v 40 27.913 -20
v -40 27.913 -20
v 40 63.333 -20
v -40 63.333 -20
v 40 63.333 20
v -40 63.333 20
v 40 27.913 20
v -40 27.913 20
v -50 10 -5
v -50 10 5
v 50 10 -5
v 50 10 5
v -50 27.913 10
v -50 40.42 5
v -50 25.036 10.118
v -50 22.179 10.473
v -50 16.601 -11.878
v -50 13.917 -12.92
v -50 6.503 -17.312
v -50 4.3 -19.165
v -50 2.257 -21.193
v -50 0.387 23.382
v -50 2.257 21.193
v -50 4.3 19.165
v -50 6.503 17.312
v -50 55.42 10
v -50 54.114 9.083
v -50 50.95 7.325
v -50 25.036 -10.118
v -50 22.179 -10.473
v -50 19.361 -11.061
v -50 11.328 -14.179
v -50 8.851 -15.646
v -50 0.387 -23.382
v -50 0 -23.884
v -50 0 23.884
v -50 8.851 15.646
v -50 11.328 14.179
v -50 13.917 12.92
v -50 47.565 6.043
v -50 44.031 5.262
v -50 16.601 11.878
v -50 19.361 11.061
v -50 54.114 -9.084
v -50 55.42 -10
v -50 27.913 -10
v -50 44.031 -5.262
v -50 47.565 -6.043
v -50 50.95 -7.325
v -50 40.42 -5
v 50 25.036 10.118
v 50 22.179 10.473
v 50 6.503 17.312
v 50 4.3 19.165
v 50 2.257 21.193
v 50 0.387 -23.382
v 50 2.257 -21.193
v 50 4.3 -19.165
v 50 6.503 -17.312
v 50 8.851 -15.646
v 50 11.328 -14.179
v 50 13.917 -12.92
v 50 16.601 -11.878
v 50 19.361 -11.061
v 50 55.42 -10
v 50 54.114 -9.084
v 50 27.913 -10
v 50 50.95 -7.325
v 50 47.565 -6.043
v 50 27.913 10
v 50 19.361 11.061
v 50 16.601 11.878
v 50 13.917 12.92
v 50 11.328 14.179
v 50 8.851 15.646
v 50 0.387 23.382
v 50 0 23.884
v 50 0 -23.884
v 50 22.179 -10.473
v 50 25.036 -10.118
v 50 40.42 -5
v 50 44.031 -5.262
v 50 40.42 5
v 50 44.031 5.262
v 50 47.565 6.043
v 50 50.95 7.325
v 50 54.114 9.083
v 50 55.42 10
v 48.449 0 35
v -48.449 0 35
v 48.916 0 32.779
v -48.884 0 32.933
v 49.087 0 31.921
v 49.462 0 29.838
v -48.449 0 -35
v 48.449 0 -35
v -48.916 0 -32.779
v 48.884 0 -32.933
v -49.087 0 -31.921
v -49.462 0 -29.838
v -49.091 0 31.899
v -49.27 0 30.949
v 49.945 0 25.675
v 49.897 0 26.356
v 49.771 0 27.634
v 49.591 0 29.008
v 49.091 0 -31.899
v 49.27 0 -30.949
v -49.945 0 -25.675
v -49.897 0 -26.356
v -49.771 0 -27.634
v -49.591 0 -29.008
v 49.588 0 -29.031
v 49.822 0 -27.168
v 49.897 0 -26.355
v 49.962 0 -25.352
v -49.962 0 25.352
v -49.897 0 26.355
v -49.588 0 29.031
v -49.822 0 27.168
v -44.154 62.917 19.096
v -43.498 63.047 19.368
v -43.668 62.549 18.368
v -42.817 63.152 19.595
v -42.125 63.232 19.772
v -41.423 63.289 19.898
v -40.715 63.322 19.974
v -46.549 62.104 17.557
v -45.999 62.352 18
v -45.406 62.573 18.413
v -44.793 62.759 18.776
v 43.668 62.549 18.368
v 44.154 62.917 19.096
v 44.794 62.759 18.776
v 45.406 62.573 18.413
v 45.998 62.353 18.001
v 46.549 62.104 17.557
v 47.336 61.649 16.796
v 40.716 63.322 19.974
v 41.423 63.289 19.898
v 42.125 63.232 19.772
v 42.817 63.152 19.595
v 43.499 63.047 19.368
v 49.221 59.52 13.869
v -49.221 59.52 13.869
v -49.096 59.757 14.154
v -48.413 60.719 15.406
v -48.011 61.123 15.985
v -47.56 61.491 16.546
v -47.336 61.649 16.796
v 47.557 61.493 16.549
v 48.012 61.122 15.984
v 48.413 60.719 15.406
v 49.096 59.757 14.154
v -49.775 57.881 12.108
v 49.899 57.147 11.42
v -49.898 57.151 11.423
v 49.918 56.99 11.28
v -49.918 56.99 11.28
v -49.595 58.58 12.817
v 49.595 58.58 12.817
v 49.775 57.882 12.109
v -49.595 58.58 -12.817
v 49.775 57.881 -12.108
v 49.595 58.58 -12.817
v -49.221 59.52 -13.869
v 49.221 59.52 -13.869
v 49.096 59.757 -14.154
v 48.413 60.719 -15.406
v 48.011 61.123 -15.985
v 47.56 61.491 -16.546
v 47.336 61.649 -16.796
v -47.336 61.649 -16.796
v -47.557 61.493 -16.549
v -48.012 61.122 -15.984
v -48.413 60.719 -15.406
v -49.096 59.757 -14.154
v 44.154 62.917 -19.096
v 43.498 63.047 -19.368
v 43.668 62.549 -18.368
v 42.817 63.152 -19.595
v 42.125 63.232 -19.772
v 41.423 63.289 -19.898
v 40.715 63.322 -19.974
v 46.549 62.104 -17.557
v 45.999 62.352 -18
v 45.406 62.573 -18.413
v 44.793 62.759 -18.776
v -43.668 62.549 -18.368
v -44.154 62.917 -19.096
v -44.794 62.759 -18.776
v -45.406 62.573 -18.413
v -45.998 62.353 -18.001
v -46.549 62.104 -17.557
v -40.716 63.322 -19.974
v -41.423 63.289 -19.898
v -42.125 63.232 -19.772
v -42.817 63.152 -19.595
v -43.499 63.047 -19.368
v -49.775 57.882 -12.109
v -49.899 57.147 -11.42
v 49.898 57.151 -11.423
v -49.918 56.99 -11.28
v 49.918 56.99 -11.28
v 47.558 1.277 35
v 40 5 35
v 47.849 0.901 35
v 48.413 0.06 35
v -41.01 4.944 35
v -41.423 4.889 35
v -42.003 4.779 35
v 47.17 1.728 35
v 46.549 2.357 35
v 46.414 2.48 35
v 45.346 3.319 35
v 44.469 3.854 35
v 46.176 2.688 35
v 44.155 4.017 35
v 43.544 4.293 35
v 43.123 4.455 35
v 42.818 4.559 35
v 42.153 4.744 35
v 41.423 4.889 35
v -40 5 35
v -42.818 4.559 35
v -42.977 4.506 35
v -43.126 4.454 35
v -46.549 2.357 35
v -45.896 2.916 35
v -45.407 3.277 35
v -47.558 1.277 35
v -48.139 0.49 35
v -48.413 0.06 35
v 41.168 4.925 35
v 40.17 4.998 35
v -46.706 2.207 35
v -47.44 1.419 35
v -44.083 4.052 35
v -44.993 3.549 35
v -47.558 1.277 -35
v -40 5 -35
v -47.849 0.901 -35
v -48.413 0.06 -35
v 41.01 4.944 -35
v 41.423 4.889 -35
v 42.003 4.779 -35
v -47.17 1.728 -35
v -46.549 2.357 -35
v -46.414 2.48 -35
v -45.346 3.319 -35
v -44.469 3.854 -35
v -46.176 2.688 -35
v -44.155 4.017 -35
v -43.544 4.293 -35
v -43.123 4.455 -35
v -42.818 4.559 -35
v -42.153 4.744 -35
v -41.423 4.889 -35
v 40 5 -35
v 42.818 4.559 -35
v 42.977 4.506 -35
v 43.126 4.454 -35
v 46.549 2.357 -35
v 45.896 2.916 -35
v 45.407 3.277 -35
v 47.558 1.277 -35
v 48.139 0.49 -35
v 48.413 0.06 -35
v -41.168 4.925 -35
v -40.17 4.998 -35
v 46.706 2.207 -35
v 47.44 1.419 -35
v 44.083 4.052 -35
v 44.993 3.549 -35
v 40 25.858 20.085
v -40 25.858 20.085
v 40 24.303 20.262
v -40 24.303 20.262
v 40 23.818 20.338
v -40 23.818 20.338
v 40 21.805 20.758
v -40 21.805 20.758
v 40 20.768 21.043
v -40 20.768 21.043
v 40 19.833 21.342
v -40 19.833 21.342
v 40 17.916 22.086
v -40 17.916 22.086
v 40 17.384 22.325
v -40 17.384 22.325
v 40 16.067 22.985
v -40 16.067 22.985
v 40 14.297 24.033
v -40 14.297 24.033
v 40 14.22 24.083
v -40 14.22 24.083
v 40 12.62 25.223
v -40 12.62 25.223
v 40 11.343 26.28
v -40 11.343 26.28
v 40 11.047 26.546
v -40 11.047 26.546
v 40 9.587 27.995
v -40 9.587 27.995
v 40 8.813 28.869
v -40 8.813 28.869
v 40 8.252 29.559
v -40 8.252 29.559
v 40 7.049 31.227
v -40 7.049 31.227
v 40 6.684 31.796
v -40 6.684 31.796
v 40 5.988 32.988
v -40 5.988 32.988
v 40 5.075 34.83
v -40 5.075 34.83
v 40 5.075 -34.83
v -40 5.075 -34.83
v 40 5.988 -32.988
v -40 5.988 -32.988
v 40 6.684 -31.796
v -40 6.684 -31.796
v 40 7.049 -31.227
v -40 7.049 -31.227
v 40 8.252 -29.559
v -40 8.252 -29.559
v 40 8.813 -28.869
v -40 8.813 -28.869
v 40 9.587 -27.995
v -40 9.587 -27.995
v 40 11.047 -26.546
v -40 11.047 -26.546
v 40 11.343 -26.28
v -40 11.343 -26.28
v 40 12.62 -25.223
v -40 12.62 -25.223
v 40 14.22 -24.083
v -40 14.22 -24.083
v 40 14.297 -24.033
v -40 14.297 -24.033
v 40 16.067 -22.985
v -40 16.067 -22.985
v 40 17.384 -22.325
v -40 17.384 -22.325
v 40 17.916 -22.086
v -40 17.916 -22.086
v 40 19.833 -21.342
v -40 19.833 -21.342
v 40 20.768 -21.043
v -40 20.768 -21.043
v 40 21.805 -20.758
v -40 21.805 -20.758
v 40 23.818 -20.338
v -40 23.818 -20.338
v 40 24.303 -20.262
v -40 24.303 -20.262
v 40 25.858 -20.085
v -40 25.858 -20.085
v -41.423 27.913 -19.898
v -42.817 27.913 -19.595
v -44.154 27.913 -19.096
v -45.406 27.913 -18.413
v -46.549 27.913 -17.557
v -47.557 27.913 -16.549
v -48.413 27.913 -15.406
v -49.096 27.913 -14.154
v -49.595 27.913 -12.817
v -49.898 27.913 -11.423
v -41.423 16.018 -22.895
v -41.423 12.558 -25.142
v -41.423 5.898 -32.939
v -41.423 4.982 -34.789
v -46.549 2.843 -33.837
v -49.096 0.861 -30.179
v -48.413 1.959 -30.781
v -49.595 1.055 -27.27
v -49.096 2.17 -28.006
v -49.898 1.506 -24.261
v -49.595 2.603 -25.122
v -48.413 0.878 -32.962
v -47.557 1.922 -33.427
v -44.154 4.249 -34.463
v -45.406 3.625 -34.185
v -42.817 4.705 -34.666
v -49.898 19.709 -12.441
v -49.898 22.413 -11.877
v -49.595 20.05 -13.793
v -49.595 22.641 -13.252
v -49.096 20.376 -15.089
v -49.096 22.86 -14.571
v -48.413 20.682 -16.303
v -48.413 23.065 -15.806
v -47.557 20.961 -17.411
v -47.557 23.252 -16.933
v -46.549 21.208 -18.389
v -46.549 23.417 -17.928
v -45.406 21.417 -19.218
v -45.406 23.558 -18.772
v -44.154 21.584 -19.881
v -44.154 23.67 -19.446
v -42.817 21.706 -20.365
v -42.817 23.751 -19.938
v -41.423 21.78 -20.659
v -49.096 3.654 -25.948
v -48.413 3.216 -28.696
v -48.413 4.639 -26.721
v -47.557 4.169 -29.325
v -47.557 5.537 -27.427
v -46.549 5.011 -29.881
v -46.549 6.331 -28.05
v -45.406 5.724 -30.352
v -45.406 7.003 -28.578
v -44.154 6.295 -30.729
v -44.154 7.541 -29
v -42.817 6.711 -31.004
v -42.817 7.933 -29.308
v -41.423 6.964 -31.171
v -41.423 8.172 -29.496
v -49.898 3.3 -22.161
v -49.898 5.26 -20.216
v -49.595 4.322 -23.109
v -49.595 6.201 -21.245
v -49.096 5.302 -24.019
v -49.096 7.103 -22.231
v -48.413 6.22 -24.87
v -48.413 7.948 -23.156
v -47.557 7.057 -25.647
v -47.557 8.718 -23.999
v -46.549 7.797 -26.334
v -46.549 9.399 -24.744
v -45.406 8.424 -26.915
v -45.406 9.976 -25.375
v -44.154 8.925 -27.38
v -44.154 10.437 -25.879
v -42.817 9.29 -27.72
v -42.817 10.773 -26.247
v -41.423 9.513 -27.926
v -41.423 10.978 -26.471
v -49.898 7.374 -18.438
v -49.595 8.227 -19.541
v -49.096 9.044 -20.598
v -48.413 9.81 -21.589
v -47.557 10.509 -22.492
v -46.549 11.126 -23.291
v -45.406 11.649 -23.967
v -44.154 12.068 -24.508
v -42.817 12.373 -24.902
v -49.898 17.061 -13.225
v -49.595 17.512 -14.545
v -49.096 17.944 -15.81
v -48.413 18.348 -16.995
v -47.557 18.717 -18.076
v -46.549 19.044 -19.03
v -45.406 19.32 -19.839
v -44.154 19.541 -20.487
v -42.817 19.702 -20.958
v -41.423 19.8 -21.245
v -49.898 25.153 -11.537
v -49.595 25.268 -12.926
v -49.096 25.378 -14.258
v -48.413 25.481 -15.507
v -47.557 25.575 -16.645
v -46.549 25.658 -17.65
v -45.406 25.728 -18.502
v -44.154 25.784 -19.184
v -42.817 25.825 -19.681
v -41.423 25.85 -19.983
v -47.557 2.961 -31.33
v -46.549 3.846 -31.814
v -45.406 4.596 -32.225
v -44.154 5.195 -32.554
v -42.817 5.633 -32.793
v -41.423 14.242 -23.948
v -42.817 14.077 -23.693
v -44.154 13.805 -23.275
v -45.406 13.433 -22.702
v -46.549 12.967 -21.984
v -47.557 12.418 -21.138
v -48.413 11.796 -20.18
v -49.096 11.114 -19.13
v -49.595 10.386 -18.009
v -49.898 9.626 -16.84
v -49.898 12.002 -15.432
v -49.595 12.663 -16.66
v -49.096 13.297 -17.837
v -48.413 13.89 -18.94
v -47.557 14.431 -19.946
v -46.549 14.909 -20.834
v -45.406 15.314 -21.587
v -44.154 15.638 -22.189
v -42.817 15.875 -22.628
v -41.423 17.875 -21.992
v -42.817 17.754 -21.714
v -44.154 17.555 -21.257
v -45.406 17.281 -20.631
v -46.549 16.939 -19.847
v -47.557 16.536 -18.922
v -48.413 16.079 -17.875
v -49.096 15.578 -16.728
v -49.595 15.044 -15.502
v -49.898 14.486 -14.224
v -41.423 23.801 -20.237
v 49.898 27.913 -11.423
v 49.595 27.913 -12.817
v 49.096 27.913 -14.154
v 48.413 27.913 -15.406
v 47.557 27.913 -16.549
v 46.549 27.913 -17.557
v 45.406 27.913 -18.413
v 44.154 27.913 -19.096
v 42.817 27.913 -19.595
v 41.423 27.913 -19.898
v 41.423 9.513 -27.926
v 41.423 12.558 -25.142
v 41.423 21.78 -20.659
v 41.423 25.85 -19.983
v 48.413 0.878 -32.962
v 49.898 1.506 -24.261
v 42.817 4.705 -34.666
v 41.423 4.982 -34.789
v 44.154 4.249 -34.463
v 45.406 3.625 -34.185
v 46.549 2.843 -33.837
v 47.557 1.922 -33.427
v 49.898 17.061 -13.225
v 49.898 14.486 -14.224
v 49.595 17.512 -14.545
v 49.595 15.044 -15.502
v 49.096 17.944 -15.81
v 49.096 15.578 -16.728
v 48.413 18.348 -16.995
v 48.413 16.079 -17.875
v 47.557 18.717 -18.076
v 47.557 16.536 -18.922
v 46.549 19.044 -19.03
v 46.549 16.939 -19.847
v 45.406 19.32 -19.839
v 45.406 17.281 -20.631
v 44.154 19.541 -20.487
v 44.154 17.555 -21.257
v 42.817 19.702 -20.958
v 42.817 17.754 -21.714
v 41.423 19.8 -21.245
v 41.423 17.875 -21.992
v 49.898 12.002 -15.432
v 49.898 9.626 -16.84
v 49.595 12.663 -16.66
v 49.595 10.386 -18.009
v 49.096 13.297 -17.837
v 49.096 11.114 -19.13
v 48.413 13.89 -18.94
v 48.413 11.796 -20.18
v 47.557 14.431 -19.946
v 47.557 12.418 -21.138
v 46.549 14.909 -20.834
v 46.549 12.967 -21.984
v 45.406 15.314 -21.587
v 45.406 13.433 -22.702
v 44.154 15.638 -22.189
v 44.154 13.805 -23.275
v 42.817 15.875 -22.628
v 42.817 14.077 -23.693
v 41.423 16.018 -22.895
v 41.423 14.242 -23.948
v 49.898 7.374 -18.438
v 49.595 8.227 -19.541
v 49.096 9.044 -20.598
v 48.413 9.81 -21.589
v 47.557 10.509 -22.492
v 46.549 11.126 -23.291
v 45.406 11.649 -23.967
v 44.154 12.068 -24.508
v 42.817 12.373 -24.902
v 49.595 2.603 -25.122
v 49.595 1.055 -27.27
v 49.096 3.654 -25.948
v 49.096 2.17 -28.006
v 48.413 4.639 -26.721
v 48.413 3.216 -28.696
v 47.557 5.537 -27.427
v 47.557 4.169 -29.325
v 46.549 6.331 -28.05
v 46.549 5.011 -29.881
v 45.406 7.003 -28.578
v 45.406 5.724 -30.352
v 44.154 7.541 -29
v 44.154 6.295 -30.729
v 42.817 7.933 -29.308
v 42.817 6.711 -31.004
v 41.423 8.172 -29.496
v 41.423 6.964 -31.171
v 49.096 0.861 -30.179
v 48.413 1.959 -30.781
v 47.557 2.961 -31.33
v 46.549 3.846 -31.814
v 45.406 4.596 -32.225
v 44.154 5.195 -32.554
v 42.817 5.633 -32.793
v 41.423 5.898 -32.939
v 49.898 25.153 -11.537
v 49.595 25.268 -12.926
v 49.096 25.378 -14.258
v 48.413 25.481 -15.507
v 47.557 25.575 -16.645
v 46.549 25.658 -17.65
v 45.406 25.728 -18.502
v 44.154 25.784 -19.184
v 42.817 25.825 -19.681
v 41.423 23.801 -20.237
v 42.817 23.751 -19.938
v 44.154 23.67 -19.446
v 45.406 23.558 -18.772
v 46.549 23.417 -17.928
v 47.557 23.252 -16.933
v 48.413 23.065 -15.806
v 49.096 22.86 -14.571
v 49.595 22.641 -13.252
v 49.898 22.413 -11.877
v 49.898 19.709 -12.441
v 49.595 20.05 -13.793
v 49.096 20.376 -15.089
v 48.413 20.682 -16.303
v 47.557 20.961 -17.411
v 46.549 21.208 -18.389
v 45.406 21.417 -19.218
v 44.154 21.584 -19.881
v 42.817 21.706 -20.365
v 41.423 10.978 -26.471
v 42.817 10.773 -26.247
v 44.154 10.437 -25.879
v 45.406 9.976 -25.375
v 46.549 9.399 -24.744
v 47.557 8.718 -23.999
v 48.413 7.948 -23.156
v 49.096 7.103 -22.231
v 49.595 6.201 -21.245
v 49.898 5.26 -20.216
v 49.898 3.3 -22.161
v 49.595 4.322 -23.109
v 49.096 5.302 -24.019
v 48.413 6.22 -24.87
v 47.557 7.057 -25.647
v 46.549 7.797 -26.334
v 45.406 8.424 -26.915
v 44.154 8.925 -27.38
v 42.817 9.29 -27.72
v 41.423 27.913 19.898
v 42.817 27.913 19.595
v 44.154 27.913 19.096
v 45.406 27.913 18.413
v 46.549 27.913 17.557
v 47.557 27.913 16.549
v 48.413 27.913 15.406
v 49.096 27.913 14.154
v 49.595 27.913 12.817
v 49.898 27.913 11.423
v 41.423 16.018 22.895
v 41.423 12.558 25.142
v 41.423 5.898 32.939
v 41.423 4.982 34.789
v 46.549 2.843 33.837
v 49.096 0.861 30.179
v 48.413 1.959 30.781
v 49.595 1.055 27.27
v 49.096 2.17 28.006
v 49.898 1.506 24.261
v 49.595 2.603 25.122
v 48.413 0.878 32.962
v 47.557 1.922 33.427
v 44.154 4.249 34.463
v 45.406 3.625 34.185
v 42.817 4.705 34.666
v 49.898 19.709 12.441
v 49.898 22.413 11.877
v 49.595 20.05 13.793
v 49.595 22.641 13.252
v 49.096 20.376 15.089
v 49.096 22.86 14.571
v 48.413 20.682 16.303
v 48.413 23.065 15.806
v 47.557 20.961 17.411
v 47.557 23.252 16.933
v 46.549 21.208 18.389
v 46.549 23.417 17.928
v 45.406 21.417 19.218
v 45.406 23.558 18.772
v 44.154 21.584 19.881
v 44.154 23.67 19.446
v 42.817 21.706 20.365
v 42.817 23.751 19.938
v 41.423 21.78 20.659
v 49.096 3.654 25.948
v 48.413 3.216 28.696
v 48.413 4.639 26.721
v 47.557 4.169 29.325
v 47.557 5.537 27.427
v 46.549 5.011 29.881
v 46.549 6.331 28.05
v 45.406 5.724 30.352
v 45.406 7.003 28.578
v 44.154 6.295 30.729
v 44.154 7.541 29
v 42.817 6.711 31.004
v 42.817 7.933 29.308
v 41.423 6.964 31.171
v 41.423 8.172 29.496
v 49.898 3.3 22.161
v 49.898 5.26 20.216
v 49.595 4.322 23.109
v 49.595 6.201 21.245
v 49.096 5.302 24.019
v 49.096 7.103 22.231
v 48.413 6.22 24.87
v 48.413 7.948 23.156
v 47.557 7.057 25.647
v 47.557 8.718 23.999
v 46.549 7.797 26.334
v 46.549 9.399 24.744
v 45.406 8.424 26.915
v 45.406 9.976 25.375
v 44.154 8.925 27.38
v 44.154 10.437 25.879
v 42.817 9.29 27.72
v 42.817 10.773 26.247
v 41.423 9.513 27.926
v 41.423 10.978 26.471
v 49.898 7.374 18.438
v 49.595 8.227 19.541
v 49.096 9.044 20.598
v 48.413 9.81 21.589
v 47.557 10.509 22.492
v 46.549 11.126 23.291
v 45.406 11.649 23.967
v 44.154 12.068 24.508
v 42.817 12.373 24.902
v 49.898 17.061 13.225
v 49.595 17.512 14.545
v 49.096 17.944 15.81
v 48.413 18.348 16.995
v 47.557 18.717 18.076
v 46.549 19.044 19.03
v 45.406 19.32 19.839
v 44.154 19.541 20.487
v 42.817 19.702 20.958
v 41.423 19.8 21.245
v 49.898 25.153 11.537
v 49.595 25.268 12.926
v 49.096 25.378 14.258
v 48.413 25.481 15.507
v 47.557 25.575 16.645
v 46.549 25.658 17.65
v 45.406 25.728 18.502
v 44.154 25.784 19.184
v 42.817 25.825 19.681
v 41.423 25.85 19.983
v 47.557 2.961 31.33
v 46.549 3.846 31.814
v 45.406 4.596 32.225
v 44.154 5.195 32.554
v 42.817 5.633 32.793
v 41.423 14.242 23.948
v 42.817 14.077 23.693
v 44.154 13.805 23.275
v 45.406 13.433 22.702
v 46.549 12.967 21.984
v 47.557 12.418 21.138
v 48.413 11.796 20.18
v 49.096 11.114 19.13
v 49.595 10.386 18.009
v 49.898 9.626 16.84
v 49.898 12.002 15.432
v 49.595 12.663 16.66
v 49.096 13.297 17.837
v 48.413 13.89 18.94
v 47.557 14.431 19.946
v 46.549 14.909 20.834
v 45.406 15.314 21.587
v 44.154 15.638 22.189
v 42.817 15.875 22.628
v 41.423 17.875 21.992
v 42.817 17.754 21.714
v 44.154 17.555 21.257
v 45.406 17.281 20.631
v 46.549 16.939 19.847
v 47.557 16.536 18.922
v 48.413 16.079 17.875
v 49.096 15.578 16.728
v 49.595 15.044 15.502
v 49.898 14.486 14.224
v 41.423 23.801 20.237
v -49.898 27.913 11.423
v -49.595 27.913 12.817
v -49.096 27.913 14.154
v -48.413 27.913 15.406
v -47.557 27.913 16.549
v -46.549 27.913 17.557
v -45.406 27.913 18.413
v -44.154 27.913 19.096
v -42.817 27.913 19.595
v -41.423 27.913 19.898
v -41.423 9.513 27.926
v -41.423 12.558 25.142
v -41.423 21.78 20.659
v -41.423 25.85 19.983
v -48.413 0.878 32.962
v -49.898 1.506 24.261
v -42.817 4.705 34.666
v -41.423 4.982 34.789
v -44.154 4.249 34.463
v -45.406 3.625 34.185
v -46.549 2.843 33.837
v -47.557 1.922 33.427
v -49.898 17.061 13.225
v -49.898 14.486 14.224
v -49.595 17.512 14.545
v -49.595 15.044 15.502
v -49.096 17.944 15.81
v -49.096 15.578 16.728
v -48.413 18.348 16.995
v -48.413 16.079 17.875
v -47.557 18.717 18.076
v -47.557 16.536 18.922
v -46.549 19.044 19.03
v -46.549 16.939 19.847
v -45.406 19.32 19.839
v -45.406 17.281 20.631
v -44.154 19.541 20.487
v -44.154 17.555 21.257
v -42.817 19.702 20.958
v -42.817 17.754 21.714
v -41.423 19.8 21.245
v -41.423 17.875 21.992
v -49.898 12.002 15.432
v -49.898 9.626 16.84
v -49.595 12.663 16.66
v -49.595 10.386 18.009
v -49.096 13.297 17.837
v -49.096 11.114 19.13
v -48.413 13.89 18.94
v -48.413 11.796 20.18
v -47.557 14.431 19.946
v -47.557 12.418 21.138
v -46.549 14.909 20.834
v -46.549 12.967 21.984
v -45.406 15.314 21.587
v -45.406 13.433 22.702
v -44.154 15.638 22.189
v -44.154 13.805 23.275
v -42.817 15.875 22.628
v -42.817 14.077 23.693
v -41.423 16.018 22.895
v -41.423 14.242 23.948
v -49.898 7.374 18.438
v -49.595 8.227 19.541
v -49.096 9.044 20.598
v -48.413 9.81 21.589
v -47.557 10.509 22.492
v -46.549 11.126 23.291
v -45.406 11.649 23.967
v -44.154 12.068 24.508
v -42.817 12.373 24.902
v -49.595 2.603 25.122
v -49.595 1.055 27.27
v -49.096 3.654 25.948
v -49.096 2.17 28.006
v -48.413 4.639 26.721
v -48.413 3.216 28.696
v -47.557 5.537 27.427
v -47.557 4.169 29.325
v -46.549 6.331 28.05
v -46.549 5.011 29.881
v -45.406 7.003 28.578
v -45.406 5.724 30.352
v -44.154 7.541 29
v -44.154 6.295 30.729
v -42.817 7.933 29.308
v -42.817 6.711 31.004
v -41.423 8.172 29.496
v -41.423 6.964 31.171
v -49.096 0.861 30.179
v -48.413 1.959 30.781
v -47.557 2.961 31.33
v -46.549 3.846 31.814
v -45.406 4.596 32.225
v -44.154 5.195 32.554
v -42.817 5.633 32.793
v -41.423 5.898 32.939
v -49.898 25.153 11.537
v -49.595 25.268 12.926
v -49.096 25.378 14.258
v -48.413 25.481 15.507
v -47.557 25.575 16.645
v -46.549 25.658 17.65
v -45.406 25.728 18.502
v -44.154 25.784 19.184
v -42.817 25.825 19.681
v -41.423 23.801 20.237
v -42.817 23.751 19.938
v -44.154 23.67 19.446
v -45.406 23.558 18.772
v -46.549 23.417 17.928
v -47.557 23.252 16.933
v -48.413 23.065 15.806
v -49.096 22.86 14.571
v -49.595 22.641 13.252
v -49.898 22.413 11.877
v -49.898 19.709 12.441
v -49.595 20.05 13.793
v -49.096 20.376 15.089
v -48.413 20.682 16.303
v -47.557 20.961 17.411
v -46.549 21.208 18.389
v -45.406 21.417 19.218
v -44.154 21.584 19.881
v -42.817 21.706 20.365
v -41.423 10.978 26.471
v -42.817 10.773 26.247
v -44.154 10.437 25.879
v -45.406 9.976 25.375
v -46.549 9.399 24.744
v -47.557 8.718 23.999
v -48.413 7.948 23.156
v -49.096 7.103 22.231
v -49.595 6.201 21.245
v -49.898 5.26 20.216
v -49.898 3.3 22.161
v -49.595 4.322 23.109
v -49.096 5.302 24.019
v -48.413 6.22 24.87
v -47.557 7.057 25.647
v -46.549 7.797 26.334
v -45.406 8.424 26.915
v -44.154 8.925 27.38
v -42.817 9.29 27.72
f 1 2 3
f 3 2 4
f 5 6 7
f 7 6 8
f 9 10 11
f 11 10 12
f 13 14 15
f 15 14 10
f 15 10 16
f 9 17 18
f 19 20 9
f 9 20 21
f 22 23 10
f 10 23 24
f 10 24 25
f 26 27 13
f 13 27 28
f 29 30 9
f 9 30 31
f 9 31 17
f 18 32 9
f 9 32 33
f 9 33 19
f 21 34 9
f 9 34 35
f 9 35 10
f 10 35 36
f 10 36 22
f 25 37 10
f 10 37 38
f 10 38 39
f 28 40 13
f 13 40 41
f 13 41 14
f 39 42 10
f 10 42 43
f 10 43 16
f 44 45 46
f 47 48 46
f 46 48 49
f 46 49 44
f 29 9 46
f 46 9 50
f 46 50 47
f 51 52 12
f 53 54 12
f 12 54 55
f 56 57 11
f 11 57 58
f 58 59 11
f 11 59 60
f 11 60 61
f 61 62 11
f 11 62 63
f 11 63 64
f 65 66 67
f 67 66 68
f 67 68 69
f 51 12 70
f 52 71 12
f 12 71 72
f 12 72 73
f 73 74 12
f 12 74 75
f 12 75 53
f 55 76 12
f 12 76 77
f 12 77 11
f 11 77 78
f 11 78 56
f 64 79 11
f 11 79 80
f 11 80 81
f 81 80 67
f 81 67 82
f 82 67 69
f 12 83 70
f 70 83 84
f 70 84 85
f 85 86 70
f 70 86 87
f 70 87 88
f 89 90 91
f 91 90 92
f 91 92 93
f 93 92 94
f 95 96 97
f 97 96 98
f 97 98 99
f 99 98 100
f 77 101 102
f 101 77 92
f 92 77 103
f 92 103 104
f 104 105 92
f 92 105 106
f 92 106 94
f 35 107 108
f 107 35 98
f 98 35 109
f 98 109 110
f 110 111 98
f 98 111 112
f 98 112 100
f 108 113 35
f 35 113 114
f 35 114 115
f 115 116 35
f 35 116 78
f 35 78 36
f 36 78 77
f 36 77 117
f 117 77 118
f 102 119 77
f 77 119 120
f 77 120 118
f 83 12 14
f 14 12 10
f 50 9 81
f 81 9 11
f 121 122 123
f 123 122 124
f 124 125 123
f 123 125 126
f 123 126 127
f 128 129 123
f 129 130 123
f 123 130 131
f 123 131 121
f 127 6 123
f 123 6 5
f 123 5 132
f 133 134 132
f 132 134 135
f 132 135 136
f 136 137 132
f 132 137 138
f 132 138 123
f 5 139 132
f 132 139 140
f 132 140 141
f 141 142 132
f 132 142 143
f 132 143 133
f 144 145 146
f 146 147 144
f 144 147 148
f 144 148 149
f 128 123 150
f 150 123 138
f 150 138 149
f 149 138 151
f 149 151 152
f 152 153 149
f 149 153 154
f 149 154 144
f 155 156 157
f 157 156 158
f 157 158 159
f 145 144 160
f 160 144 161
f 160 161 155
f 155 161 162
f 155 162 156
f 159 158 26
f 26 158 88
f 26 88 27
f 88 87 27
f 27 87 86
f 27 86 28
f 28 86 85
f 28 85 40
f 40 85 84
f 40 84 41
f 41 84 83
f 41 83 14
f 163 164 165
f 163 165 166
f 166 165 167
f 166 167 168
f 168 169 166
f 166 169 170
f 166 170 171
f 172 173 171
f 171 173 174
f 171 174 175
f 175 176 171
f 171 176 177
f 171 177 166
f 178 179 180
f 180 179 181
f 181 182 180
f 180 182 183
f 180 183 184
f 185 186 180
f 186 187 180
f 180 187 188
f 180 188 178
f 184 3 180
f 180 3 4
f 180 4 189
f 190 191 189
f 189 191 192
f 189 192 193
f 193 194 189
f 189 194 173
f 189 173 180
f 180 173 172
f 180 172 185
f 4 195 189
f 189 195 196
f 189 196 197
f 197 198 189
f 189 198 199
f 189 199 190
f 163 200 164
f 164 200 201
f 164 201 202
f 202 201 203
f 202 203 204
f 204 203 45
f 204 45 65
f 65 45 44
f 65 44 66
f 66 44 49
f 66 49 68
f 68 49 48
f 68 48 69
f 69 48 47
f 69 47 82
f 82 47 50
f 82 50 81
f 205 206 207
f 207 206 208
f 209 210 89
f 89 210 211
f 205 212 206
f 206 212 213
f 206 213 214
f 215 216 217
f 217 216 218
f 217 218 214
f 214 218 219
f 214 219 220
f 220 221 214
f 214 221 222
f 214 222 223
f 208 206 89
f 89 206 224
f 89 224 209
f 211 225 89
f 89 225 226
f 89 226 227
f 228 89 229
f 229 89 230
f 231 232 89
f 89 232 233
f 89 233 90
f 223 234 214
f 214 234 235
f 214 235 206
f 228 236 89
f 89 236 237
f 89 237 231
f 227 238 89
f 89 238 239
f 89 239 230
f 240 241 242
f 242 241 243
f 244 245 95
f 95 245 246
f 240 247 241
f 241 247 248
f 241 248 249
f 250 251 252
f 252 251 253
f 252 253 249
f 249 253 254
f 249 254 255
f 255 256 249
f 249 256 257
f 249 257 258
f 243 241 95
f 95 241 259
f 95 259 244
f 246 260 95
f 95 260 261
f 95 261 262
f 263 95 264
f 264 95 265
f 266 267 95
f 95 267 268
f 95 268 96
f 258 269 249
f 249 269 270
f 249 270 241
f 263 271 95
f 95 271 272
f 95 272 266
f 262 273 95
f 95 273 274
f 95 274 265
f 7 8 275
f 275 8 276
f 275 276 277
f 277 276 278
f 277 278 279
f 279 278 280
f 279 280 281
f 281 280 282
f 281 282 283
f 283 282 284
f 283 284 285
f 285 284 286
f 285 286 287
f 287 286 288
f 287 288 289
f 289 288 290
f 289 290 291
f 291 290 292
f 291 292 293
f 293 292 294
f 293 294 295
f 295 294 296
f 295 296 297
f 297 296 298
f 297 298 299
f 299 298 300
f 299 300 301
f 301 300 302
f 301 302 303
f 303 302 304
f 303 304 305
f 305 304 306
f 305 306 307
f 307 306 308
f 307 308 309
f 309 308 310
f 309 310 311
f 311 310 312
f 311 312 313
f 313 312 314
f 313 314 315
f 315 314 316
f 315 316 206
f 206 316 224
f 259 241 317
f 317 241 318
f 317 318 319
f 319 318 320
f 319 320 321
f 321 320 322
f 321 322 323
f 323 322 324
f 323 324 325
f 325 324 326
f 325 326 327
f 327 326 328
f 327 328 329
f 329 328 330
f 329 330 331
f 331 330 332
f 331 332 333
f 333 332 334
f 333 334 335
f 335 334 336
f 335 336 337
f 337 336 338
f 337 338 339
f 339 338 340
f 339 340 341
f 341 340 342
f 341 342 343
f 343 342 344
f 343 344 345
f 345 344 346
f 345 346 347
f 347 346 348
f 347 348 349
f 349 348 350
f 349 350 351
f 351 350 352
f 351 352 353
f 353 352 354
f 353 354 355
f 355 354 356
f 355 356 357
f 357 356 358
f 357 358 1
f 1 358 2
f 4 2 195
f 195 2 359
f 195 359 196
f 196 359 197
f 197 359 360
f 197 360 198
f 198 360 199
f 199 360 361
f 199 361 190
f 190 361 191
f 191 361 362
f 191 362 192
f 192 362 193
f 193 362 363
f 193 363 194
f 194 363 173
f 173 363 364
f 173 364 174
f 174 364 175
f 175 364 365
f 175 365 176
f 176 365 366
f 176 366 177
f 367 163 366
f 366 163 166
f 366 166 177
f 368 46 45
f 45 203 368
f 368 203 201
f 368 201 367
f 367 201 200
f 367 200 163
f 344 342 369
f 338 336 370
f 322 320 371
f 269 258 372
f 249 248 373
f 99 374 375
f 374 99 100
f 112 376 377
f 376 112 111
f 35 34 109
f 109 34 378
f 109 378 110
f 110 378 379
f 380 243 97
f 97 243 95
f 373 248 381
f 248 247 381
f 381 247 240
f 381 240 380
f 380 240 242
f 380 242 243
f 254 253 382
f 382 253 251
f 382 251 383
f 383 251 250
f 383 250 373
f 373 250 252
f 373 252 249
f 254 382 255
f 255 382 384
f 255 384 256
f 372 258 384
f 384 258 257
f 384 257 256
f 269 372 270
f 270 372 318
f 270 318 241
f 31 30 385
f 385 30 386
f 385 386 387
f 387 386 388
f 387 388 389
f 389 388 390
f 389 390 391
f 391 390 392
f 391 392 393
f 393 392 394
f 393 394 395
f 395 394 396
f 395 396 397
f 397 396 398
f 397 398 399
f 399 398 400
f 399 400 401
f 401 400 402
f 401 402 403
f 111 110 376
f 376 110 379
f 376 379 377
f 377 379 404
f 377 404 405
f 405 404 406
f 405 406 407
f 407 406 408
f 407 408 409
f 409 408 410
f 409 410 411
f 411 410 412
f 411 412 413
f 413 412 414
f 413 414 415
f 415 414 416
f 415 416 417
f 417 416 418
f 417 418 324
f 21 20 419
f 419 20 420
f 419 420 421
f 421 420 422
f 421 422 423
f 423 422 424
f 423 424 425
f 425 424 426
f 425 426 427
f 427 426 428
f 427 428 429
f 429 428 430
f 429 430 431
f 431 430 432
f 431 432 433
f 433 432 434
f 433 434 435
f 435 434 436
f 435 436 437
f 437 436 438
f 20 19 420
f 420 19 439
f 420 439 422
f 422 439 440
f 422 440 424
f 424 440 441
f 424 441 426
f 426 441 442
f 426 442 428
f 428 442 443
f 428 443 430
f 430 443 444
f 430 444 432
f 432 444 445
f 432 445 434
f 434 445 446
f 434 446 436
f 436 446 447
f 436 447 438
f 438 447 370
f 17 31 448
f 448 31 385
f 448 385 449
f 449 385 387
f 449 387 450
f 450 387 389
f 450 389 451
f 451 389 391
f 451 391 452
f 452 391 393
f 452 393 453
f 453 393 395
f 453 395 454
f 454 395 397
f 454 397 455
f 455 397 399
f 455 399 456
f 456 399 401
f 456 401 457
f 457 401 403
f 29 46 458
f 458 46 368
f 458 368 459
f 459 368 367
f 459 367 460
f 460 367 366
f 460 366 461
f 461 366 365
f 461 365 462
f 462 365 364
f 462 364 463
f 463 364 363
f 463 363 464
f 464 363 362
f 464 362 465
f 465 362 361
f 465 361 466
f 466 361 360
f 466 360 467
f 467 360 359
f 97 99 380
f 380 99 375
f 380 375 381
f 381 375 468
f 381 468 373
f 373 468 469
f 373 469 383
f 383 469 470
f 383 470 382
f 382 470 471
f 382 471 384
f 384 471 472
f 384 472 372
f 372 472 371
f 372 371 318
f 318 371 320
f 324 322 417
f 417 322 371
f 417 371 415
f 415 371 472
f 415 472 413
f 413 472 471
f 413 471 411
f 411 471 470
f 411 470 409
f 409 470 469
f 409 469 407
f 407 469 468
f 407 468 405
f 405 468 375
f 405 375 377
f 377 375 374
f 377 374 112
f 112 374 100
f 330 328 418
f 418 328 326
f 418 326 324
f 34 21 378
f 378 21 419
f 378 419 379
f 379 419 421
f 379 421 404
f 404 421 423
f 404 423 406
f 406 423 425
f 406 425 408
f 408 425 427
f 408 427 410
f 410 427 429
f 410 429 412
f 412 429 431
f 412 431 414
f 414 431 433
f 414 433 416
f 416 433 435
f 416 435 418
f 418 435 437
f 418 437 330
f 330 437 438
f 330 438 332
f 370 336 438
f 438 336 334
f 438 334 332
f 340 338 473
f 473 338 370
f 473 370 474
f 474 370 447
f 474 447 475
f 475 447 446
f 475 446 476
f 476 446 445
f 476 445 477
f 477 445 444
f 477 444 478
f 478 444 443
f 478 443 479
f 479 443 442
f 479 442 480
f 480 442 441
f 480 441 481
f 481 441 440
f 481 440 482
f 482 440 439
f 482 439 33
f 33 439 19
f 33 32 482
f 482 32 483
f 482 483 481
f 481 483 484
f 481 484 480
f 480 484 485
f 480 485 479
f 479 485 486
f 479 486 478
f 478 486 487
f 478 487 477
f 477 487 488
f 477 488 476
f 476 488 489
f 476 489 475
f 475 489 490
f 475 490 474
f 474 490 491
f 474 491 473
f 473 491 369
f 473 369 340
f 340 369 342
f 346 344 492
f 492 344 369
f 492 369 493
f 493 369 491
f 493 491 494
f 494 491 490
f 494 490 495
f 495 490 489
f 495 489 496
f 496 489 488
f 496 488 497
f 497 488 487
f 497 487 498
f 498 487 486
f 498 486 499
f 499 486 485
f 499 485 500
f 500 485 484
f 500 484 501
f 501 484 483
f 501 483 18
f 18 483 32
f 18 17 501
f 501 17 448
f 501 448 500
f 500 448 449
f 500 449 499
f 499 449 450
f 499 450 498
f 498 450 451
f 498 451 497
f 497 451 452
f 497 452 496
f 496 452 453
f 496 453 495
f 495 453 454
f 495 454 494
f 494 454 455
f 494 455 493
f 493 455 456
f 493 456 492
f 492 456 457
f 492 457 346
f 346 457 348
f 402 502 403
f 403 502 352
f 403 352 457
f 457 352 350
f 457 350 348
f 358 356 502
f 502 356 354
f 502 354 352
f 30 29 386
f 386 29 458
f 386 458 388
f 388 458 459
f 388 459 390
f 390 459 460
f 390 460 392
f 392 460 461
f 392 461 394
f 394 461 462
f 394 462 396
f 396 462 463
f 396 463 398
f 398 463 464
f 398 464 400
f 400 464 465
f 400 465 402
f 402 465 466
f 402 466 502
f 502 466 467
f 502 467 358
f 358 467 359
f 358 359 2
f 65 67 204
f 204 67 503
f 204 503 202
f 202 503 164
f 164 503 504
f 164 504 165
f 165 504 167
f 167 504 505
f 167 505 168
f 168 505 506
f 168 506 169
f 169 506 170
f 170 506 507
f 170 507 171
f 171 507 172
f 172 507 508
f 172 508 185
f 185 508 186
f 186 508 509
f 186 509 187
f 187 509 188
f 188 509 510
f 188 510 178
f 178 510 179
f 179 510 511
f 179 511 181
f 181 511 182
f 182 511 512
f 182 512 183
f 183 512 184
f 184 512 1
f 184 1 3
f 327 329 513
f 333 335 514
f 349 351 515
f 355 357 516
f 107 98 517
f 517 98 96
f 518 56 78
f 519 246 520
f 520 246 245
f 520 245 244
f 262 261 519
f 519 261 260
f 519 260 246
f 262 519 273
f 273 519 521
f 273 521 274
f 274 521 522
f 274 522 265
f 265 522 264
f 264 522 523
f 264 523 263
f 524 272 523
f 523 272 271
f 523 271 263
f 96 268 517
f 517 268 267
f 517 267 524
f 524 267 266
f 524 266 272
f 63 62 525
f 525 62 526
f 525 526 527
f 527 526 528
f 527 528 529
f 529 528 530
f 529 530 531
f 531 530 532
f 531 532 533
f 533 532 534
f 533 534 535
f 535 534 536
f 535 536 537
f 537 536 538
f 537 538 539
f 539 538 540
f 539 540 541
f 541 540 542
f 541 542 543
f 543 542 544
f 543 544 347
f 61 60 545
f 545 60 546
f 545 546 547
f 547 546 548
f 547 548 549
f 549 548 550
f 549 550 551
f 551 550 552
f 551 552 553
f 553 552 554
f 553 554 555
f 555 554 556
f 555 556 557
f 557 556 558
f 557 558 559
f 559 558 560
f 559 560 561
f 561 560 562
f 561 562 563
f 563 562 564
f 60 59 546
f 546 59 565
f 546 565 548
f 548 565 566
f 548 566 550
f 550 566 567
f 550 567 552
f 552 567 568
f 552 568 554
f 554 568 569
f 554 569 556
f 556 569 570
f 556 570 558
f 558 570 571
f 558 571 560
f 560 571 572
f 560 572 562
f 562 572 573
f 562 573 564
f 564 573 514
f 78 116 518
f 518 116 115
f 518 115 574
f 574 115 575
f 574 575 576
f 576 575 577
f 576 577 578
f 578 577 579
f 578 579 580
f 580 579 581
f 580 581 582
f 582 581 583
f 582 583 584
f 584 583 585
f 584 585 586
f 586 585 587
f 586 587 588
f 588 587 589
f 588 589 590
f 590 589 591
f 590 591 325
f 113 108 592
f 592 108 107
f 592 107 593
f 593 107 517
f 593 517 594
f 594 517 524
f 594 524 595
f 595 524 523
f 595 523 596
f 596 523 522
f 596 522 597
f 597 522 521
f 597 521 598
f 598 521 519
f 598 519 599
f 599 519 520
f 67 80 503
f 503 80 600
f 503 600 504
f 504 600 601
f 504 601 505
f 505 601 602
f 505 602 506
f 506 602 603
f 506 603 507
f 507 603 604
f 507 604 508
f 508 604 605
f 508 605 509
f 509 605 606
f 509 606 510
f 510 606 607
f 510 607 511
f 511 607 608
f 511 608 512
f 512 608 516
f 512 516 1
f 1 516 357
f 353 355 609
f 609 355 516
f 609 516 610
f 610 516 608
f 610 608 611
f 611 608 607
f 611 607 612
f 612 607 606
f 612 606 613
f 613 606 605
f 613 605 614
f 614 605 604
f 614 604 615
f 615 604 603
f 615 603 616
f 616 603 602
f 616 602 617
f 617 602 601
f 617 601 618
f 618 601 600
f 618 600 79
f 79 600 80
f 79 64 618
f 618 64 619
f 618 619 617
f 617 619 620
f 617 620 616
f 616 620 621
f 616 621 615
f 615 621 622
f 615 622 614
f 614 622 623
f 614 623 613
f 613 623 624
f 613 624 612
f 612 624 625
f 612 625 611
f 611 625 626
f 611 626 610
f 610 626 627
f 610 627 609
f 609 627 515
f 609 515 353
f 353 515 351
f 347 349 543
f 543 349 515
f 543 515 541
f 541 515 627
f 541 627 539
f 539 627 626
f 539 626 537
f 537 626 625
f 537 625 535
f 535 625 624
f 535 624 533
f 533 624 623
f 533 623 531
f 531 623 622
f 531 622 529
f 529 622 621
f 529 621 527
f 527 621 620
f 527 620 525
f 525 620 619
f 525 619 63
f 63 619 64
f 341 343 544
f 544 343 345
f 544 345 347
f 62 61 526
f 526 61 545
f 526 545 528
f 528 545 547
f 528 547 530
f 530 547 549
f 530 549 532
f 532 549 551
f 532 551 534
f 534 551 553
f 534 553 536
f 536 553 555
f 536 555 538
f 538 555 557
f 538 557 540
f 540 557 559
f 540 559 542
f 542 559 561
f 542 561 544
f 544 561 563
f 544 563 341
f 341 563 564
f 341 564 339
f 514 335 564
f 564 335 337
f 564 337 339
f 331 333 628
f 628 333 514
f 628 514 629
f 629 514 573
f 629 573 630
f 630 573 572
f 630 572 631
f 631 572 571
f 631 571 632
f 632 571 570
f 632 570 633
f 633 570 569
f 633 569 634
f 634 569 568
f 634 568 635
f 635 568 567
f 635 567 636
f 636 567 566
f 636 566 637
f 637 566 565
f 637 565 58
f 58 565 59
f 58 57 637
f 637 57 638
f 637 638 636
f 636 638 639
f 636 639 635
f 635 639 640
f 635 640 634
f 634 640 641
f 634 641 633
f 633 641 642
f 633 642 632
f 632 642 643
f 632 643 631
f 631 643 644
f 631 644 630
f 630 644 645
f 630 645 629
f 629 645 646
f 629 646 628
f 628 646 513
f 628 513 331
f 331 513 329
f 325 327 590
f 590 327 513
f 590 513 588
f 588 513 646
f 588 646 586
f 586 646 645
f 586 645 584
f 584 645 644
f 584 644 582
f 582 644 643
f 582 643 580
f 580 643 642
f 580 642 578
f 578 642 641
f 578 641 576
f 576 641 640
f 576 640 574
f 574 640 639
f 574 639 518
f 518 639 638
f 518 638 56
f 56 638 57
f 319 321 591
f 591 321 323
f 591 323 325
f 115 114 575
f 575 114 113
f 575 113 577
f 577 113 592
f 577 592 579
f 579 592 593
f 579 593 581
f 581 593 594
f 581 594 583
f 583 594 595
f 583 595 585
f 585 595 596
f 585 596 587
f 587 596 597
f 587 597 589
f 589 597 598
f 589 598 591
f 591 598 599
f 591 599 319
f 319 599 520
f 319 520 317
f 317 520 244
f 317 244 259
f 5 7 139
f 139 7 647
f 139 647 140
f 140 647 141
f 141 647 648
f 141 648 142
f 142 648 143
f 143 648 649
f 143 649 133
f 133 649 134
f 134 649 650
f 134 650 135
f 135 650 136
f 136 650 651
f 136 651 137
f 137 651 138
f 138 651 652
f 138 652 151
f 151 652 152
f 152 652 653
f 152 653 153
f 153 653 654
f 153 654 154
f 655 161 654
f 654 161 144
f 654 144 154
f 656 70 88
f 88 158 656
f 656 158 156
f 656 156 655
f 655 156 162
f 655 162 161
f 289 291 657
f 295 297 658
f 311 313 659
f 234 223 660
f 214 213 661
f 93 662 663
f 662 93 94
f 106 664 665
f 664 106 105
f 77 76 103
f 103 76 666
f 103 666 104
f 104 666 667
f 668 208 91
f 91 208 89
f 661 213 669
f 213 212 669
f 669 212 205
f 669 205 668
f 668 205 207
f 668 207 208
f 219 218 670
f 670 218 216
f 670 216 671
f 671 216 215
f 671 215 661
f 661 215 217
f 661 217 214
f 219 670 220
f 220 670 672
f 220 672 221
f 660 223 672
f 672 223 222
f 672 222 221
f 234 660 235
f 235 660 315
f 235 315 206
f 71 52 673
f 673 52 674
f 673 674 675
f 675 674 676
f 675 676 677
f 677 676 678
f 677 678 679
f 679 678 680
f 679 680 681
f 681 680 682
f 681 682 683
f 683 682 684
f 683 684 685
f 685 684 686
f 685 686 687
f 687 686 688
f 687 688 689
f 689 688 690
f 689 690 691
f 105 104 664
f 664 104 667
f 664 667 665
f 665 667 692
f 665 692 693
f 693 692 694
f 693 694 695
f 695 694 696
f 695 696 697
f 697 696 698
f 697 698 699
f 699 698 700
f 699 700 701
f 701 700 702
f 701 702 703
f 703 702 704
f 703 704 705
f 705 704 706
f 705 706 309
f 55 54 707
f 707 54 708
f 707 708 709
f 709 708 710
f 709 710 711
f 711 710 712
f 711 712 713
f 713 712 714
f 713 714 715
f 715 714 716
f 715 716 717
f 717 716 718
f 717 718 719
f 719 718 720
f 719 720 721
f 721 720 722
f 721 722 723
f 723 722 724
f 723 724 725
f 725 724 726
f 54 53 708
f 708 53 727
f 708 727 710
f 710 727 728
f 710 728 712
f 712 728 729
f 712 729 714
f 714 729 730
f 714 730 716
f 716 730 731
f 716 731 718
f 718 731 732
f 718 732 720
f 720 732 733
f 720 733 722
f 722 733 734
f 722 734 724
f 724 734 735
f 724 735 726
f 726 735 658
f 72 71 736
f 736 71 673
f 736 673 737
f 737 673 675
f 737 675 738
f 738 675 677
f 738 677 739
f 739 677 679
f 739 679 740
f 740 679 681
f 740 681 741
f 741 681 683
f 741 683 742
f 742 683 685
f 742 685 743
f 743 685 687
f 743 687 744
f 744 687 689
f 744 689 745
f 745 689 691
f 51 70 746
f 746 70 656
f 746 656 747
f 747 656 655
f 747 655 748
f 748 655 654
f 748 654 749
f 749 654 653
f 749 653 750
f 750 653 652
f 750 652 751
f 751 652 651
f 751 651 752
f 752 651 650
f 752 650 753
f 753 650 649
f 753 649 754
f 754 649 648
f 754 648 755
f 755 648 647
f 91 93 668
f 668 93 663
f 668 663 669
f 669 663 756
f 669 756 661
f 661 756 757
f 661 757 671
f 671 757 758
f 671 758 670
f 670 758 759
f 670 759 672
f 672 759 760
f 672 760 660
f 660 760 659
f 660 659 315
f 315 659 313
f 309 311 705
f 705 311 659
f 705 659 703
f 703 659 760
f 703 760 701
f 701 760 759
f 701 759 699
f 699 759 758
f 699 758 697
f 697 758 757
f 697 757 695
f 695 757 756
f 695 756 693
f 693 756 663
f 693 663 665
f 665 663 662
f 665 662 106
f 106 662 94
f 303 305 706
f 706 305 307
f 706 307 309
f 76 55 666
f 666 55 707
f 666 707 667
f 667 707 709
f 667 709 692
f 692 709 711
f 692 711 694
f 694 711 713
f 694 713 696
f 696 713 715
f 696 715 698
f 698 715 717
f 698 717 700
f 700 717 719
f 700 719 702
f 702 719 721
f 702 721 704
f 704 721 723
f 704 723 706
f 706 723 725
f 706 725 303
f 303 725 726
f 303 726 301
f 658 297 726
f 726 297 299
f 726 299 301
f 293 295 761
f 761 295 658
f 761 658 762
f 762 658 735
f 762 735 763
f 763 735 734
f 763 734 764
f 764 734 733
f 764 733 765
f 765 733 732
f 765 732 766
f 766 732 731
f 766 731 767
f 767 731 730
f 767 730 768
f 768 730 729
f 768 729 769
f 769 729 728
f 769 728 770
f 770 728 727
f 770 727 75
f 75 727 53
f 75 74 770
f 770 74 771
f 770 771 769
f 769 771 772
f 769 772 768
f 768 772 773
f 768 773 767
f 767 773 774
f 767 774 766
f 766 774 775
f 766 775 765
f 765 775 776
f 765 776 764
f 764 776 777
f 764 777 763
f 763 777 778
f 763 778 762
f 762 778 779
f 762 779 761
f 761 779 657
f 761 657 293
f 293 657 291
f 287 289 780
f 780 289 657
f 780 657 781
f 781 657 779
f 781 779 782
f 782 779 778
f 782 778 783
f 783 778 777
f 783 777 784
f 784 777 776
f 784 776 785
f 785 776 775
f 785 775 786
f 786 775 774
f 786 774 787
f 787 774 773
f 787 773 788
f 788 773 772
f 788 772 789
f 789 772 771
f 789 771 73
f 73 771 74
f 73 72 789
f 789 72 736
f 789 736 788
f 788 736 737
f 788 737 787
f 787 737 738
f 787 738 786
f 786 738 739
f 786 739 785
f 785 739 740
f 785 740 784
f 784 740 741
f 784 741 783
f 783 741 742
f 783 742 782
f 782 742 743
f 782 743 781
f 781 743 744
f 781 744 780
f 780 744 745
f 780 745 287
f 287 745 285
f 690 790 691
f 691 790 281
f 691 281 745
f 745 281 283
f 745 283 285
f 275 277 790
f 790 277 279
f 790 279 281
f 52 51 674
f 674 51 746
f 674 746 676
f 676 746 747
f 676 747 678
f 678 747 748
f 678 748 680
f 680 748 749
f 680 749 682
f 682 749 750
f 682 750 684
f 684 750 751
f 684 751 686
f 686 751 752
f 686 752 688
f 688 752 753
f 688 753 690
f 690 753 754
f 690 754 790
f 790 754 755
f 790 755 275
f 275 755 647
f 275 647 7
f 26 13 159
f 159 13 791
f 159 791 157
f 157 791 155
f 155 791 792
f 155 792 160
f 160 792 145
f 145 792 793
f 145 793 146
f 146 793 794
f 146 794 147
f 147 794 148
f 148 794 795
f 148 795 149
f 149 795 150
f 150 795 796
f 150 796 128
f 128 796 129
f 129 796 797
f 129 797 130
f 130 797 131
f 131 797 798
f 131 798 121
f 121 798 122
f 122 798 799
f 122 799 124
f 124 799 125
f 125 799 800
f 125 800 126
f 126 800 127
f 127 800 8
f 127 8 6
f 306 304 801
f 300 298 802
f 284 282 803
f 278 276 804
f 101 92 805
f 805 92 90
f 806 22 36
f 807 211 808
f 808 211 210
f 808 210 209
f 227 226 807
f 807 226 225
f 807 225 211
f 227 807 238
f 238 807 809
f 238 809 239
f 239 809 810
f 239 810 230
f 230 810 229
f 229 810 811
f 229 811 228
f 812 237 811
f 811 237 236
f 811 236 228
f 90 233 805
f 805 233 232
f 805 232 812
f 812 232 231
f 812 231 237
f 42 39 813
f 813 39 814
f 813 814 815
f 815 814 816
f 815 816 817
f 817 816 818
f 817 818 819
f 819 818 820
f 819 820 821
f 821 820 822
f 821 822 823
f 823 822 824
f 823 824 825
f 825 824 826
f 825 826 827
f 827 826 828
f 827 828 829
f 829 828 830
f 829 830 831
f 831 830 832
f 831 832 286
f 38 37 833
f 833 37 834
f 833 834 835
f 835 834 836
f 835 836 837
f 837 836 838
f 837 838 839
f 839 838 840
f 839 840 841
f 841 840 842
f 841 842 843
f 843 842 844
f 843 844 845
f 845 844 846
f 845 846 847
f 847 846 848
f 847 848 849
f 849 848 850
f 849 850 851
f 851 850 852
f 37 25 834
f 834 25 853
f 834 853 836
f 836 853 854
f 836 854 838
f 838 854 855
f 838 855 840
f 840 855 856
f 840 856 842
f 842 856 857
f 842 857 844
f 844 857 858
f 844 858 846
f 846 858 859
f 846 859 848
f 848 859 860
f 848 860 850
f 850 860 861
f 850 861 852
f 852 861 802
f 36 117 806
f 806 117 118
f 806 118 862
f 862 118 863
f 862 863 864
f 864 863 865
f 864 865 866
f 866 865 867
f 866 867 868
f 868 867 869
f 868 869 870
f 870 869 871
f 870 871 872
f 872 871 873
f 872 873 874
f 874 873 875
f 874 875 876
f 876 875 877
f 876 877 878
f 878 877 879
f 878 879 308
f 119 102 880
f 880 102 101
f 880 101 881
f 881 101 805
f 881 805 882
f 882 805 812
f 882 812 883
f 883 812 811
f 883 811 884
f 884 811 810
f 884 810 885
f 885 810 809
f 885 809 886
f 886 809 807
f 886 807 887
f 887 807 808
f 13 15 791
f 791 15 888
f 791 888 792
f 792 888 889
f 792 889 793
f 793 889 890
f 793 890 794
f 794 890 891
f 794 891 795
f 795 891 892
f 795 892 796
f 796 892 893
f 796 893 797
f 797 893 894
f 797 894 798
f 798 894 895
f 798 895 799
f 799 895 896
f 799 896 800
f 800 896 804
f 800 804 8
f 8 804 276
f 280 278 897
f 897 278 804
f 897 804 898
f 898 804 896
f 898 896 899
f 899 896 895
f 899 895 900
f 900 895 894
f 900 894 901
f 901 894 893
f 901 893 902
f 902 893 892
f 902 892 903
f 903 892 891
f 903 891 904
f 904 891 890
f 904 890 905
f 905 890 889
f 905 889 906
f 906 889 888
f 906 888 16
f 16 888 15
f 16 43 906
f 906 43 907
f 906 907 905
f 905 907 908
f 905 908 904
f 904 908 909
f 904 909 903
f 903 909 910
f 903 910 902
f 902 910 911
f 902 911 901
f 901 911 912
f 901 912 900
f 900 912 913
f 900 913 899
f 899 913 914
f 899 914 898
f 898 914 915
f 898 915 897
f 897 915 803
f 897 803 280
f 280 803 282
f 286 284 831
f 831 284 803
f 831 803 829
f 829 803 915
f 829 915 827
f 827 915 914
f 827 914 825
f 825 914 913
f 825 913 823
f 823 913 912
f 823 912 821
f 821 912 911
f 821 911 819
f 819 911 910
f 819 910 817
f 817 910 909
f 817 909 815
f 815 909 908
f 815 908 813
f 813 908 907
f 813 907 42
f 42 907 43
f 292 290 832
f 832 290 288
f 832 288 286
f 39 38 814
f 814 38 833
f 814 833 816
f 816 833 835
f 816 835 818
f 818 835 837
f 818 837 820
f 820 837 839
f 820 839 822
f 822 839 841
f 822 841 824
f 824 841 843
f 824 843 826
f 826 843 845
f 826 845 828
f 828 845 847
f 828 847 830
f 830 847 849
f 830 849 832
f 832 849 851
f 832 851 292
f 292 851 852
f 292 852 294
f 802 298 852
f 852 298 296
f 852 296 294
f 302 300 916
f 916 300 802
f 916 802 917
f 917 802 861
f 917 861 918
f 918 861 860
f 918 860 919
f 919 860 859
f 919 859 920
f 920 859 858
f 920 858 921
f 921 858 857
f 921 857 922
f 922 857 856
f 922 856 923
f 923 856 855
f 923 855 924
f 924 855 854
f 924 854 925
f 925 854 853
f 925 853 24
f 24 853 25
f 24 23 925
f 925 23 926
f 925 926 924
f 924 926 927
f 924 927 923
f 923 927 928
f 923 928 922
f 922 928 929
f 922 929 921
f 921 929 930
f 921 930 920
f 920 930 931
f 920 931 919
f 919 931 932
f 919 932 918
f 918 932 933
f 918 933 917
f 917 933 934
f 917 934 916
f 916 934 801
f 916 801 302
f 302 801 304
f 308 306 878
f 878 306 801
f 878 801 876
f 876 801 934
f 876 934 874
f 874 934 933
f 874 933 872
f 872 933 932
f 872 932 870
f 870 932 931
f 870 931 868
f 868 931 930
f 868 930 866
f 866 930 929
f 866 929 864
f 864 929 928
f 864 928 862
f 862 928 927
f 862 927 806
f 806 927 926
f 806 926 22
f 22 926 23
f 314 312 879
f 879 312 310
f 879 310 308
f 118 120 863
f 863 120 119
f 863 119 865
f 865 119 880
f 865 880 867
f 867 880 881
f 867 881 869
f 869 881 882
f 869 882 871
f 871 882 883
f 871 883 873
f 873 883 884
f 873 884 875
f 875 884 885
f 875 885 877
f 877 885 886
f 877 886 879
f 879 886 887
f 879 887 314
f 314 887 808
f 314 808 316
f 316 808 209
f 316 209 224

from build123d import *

# Parameters (mm, degrees)
SKETCH2_W           = 100
SKETCH2_H           = 40
BOSS_EXTRUDE1_DEPTH = 10
SKETCH4_W           = 100
SKETCH4_H           = 15
BOSS_EXTRUDE2_DEPTH = 63.33333
FILLET1_R           = 25
FILLET2_R           = 25
SKETCH5_W           = 100
SKETCH5_H           = 15
BOSS_EXTRUDE3_DEPTH = 5
FILLET3_R           = 25
FILLET4_R           = 25
FILLET10_R          = 10
FILLET11_R          = 10


with BuildPart() as part:
    # Sketch2 → Boss-Extrude1 (new body)
    with BuildSketch(Plane(origin=(0, 0, 0), x_dir=(1, 0, 0), z_dir=(0, 1, 0))):
        Rectangle(SKETCH2_W, SKETCH2_H)
    extrude(amount=BOSS_EXTRUDE1_DEPTH)

    # Sketch4 → Boss-Extrude2 (add)
    with BuildSketch(Plane(origin=(0, 0, 0), x_dir=(1, 0, 0), z_dir=(0, 1, 0))):
        with Locations((0, -12.5)):
            Rectangle(SKETCH4_W, SKETCH4_H)
        with Locations((0, 12.5)):
            Rectangle(SKETCH4_W, SKETCH4_H)
    extrude(amount=BOSS_EXTRUDE2_DEPTH)

    # Fillet1
    # the kernel refuses this fillet: 25 mm, written as the material it takes off along each edge
    with BuildSketch(Plane(origin=(107.282196187, 63.33333, 5), x_dir=(0, 0, 1), z_dir=(-1, 0, 0))) as fillet1_piece_1:
        with BuildLine():
            CenterArc((25, -22.912878475), FILLET1_R, 113.578178478, 66.421821522)
            Line((0, -22.912878475), (-0.5, -22.912878475))
            Line((-0.5, -22.912878475), (-0.5, 0))
            Line((-0.5, 0), (0, 0.5))
            ThreePointArc((0, 0.5), (7.5, 0.5), (14.8, 0.458257569))
            Line((14.8, 0.458257569), (15, 0))
        make_face()
    extrude(amount=214.564392374, mode=Mode.SUBTRACT)

    # Fillet2
    # the kernel refuses this fillet: 25 mm, written as the material it takes off along each edge
    with BuildSketch(Plane(origin=(107.282196187, 63.33333, -5), x_dir=(0, 0, -1), z_dir=(-1, 0, 0))) as fillet2_piece_1:
        with BuildLine():
            CenterArc((25, 22.912878475), FILLET2_R, 180, 66.421821522)
            Line((0, 22.912878475), (-0.5, 22.912878475))
            Line((-0.5, 22.912878475), (-0.5, 0))
            Line((-0.5, 0), (0, -0.5))
            ThreePointArc((0, -0.5), (7.5, -0.5), (14.8, -0.458257569))
            Line((14.8, -0.458257569), (15, 0))
        make_face()
    extrude(amount=214.564392374, mode=Mode.SUBTRACT)

    # Sketch5 → Boss-Extrude3 (add)
    with BuildSketch(Plane(origin=(0, 0, 0), x_dir=(1, 0, 0), z_dir=(0, 1, 0))):
        with Locations((0, -27.5)):
            Rectangle(SKETCH5_W, SKETCH5_H)
        with Locations((0, 27.5)):
            Rectangle(SKETCH5_W, SKETCH5_H)
    extrude(amount=BOSS_EXTRUDE3_DEPTH)

    # Fillet3
    # the kernel refuses this fillet: 25 mm, written as the material it adds along each edge
    with BuildSketch(Plane(origin=(-50, 5, 20), x_dir=(0, 1, 0), z_dir=(1, 0, 0))) as fillet3_piece_1:
        with BuildLine():
            CenterArc((22.912878475, 25), FILLET3_R, 203.578178478, 66.421821522)
            Line((0, 15), (-0.458257569, 14.8))
            ThreePointArc((-0.458257569, 14.8), (-0.5, 7.5), (-0.5, 0))
            Line((-0.5, 0), (0, -0.5))
            Line((0, -0.5), (22.912878475, -0.5))
            Line((22.912878475, -0.5), (22.912878475, 0))
        make_face()
    extrude(amount=100)

    # Fillet4
    # the kernel refuses this fillet: 25 mm, written as the material it adds along each edge
    with BuildSketch(Plane(origin=(-50, 5, -20), x_dir=(0, 1, 0), z_dir=(1, 0, 0))) as fillet4_piece_1:
        with BuildLine():
            CenterArc((22.912878475, -25), FILLET4_R, 90, 66.421821522)
            Line((0, -15), (-0.458257569, -14.8))
            ThreePointArc((-0.458257569, -14.8), (-0.5, -7.5), (-0.5, 0))
            Line((-0.5, 0), (0, 0.5))
            Line((0, 0.5), (22.912878475, 0.5))
            Line((22.912878475, 0.5), (22.912878475, 0))
        make_face()
    extrude(amount=100)

    # Fillet10
    fillet10_edges = [part.edges().sort_by_distance(p)[0] for p in [
        (-50, 14.219814537, -24.083499337),
        (-50, 45.623104237, -20),
    ]]
    fillet(fillet10_edges, radius=FILLET10_R)

    # Fillet11
    fillet11_edges = [part.edges().sort_by_distance(p)[0] for p in [
        (50, 14.219814537, -24.083499337),
        (50, 14.219814537, 24.083499337),
        (-50, 14.219814537, 24.083499337),
        (50, 45.623104237, -20),
        (50, 45.623104237, 20),
        (-50, 45.623104237, 20),
    ]]
    fillet(fillet11_edges, radius=FILLET11_R)


solid = part.part
